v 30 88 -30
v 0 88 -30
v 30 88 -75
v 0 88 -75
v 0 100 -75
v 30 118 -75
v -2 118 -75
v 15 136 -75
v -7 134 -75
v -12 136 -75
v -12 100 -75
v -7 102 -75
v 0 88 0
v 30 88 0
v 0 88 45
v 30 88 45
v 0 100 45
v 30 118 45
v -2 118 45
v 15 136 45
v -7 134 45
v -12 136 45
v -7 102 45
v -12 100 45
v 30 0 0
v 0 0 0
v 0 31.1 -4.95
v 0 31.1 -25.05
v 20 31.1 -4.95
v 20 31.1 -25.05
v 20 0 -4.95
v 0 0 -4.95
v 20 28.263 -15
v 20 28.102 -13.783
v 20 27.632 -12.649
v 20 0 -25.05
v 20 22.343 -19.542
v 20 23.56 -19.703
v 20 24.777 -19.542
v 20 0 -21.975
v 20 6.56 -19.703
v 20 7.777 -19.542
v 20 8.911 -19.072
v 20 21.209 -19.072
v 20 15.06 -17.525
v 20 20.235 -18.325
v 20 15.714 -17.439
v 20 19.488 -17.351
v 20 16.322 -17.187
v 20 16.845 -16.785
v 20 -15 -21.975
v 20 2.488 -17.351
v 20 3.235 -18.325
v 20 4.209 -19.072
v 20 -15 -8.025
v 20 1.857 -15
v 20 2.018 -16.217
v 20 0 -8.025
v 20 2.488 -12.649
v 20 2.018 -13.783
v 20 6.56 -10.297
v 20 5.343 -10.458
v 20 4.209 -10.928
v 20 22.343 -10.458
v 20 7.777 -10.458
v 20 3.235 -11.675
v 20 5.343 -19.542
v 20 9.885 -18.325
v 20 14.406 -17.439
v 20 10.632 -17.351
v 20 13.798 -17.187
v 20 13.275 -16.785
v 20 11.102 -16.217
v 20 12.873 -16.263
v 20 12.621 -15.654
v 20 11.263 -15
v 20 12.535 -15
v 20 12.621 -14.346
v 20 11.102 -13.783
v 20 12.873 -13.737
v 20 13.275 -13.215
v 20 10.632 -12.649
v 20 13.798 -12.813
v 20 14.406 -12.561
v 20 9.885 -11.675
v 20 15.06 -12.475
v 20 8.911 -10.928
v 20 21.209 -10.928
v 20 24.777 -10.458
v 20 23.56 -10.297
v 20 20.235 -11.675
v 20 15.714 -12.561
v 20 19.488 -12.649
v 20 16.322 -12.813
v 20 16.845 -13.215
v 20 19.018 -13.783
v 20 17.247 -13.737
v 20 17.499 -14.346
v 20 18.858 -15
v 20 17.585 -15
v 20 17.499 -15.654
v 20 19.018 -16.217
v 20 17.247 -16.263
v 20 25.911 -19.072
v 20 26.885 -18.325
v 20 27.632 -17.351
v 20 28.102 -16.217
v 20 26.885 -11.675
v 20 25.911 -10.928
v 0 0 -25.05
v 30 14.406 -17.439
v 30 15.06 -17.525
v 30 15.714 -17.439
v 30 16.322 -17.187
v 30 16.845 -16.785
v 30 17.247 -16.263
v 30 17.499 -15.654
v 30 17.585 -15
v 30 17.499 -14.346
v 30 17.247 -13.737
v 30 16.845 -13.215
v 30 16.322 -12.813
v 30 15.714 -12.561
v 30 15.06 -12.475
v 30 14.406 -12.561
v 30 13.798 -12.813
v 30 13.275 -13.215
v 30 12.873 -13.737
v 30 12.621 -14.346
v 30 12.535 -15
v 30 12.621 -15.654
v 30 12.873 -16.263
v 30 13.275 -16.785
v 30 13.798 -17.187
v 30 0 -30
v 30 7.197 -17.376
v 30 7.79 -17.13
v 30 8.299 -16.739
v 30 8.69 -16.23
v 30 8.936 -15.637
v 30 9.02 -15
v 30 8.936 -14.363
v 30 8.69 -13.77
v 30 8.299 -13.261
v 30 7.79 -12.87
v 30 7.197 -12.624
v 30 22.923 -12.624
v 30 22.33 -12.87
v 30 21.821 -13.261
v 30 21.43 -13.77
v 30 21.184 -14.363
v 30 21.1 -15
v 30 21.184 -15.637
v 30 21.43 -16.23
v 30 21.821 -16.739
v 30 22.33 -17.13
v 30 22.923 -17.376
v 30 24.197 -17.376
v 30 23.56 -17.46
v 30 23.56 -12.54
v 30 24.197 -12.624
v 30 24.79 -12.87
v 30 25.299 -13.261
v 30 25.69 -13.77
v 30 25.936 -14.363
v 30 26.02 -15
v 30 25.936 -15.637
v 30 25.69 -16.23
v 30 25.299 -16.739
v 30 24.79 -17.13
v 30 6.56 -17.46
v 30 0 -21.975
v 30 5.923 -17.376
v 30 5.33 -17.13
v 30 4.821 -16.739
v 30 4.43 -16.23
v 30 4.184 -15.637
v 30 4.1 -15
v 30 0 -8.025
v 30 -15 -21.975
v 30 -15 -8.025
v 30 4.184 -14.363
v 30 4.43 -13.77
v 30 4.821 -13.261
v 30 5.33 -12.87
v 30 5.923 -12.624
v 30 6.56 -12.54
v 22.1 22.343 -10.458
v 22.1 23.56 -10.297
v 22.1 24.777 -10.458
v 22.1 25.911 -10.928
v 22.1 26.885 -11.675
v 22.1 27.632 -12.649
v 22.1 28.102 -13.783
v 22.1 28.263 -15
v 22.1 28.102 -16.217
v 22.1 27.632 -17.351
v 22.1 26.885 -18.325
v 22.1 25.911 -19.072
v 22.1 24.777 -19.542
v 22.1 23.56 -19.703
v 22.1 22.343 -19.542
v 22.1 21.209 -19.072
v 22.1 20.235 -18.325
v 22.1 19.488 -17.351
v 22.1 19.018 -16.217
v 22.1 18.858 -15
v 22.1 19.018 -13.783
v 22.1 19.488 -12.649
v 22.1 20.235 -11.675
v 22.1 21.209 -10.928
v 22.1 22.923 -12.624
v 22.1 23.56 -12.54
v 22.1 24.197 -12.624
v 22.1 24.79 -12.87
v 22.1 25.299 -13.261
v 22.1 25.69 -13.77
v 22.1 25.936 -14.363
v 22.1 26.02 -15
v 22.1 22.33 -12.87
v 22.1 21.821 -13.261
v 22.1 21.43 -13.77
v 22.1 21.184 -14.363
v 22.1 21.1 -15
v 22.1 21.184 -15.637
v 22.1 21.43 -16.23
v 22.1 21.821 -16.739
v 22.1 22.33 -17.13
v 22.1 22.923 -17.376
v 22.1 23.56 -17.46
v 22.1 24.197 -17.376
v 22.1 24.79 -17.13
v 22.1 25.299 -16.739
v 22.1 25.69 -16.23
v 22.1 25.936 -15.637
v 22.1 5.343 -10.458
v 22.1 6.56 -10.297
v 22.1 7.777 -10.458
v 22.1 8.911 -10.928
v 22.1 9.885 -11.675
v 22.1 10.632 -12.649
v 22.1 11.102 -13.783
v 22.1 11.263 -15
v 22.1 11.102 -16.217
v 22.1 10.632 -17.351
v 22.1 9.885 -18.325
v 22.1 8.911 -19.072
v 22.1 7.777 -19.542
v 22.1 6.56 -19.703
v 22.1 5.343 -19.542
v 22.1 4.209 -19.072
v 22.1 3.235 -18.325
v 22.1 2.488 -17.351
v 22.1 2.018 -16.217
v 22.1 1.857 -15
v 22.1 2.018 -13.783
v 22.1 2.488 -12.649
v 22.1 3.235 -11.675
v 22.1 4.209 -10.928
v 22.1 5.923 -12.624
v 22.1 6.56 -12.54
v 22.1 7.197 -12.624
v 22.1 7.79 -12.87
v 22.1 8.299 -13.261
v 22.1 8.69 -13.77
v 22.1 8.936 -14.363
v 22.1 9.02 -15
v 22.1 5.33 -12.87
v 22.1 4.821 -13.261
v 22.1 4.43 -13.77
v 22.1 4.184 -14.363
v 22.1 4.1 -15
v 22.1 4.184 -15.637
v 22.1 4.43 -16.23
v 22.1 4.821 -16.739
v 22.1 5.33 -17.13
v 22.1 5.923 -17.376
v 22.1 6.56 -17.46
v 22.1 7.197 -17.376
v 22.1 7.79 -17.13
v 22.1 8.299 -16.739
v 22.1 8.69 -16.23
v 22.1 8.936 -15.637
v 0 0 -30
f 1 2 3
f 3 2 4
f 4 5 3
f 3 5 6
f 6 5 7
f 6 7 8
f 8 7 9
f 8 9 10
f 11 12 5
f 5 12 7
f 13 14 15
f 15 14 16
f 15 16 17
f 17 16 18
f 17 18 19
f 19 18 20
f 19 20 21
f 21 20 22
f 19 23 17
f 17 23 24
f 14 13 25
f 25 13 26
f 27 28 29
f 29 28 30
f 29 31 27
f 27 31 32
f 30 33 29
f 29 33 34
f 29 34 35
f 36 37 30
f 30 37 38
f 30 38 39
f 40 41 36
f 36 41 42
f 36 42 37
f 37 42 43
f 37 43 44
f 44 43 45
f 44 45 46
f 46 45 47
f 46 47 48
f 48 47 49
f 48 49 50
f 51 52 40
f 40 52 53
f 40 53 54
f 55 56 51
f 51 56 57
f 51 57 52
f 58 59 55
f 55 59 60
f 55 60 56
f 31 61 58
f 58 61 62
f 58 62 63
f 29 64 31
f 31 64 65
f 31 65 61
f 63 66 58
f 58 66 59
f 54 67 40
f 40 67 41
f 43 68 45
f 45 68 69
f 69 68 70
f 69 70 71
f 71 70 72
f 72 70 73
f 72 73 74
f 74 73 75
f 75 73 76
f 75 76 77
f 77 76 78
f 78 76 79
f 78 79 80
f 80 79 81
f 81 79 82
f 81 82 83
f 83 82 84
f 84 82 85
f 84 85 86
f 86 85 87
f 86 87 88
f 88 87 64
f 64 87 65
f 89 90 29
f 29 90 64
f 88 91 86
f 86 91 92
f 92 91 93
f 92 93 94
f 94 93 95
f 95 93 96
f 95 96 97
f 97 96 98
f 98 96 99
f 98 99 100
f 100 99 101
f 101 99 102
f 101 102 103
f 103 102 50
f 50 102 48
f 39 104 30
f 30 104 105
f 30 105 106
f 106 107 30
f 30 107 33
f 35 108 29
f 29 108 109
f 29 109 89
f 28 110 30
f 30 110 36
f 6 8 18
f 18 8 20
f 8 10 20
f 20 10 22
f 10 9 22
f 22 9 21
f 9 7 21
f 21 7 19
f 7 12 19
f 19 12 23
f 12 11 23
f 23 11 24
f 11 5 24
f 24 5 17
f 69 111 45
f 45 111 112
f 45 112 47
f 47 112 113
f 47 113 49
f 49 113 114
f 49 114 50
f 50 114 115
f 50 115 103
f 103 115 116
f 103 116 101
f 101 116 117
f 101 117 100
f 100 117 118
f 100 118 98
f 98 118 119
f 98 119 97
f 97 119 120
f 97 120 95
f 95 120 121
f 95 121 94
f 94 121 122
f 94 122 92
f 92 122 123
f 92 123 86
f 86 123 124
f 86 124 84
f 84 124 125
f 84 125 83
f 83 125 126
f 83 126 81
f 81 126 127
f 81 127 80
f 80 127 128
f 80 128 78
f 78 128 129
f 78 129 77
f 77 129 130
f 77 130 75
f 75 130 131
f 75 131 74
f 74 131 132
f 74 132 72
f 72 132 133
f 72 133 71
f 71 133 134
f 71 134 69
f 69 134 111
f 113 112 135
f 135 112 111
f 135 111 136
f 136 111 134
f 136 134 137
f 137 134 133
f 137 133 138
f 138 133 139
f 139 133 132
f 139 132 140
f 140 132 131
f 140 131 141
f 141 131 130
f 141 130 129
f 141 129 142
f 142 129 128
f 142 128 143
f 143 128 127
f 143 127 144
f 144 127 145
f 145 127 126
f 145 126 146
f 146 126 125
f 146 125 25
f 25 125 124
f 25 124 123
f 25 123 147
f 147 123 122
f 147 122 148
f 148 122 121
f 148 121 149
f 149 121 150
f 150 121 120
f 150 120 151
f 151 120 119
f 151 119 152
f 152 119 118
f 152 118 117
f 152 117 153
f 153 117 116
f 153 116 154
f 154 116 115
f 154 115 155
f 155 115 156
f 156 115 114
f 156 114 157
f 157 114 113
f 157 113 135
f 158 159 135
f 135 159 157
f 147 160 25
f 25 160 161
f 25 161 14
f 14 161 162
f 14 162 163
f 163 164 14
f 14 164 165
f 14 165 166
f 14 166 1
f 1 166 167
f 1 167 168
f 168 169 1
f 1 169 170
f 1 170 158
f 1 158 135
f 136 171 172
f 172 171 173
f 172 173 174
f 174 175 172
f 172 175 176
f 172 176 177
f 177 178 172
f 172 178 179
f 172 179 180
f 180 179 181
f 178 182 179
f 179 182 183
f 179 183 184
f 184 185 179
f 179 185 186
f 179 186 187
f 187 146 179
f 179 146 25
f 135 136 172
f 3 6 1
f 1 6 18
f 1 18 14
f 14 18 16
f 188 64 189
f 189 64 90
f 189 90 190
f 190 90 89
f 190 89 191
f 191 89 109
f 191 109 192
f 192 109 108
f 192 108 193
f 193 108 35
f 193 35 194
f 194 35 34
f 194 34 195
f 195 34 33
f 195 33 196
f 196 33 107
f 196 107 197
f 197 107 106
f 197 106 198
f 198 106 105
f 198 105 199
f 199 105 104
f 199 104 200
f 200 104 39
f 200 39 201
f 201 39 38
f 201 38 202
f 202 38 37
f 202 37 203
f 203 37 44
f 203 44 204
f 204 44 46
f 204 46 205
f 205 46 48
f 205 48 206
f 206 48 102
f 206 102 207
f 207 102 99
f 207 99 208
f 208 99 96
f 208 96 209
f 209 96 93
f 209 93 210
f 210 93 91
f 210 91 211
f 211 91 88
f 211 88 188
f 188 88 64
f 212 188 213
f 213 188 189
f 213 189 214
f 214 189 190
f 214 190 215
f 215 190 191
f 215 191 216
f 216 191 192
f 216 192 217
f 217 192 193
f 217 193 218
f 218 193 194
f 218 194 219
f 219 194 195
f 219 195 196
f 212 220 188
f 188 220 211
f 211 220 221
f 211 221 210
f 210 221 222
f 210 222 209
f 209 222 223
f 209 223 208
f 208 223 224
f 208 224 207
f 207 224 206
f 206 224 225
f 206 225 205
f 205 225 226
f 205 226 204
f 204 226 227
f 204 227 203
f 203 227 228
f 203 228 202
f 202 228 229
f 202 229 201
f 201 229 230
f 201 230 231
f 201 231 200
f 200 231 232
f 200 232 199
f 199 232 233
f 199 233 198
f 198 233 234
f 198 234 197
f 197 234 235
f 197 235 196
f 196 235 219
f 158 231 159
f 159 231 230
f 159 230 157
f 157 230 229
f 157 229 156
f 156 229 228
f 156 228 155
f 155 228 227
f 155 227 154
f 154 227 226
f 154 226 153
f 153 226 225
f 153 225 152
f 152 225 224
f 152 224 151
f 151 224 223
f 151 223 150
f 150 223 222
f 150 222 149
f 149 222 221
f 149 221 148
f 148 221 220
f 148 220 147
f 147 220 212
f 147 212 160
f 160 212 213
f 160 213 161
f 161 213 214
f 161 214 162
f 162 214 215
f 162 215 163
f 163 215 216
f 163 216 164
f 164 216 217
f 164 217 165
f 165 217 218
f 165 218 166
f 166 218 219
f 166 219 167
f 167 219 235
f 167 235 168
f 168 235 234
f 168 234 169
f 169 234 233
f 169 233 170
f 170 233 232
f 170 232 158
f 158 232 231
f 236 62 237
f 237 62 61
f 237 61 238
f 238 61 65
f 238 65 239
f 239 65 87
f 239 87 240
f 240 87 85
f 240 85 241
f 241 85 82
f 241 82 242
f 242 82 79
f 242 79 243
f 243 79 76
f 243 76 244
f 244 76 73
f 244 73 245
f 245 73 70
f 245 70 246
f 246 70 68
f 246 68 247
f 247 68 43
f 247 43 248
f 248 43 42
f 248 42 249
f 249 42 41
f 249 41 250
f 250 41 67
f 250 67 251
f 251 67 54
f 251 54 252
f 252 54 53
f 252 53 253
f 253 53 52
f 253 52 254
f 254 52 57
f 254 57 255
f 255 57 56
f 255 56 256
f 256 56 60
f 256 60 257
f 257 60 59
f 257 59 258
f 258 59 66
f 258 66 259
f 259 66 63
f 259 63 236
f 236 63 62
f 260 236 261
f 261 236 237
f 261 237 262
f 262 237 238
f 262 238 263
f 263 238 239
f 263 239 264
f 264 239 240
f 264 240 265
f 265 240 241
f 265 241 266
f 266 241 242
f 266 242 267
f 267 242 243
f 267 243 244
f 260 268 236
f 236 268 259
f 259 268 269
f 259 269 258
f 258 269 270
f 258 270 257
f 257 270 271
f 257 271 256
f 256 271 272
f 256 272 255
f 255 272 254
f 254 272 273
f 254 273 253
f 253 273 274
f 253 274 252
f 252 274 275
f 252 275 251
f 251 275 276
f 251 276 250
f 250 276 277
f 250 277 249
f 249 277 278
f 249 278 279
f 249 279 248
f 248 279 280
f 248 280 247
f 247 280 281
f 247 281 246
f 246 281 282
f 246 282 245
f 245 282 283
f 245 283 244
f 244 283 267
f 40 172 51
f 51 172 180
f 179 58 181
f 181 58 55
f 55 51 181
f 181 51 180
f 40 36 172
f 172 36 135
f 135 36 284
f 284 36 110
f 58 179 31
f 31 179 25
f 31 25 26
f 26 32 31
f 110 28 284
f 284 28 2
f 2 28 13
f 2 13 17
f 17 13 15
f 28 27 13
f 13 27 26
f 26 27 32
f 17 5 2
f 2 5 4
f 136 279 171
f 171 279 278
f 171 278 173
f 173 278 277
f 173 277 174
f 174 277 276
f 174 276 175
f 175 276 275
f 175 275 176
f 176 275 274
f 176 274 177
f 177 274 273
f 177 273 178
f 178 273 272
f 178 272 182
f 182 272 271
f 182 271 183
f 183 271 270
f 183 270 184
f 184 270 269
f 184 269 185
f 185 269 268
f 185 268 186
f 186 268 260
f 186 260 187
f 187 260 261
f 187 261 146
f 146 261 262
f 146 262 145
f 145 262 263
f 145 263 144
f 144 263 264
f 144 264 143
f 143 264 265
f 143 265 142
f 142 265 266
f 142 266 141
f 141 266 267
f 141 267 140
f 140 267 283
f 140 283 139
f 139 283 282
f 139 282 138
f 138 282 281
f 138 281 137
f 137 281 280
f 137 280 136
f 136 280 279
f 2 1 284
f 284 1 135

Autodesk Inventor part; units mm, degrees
ref_plane "YZ Plane" through (0, 0, 0) normal (1, 0, 0) x (0, 1, 0)
ref_plane "XZ Plane" through (0, 0, 0) normal (0, 1, 0) x (-1, 0, 0)
sketch "Sketch1" plane through (0, 0, 0) normal (0, 0, 1) x (1, 0, 0)
  line L0 (0, 0) -> (25, 0)
  line L1 (25, 0) -> (25, 40)
  line L2 (25, 40) -> (0, 40)
  line L3 (0, 40) -> (0, 0)
  dimension "d1" = 25
  dimension "d2" = 40
  dimension "d3" = 25
extrude "Extrusion1" add sketch "Sketch1" against normal blind 30
sketch "Sketch2" plane through (25, 0, 0) normal (1, 0, 0) x (0, 0, -1)
  line L0 (0, 0) -> (30, 0) projected
  circle A0 centre (15, 6.56) radius 2.46
extrude "Extrusion2" cut sketch "Sketch2" against normal blind 30
sketch "Sketch3" plane through (0, 0, 0) normal (-1, 0, 0) x (0, 0, 1)
  line L0 (0, 0) -> (-30, 0) projected
  line L1 (-25.05, 0) -> (-4.95, 0)
  line L2 (-4.95, 0) -> (-4.95, 33.12)
  line L3 (-4.95, 33.12) -> (-25.05, 33.12)
  line L4 (-25.05, 33.12) -> (-25.05, 0)
  dimension "d11" = 20.1
extrude "Extrusion3" cut sketch "Sketch3" against normal blind 20
sketch "Sketch4" plane through (0, 0, 0) normal (0, -1, 0) x (1, 0, 0)
  line L0 (20, -4.95) -> (20, -25.05) projected
  line L1 (20, -15) -> (25, -15)
  line L2 (25, 0) -> (25, -30) projected
  line L3 (20, -8.025) -> (25, -8.025)
  line L4 (25, -8.025) -> (25, -21.975)
  line L5 (25, -21.975) -> (20, -21.975)
  line L6 (20, -21.975) -> (20, -8.025)
  line L7 (20, -8.025) -> (25, -21.975) construction
  line L8 (25, -8.025) -> (20, -21.975) construction
  line L9 (25, -12.54) -> (25, -17.46) projected
  point P0 (0, 0)
  point P1 (22.5, -15)
  dimension "d14" = 13.95
extrude "Extrusion4" add sketch "Sketch4" along normal blind 15
sketch "Sketch5" plane through (20, 0, 0) normal (-1, 0, 0) x (0, 0, 1)
  circle A0 centre (-15, 6.56) radius 2.46 projected
  circle A1 centre (-15, 6.56) radius 4.7025
  circle A2 centre (-15, 6.56) radius 2.46 projected
  circle A3 centre (-15, 6.56) radius 2.46
  point P0 (0, 0)
  dimension "d17" = 9.405
extrude "Extrusion5" cut sketch "Sketch5" against normal blind 2.1
sketch "Sketch6" plane through (25, 0, 0) normal (1, 0, 0) x (0, 0, -1)
  circle A0 centre (15, 6.56) radius 4.7025 projected
  line L0 (15, 6.56) -> (15, 23.56)
  circle A1 centre (15, 23.56) radius 2.46
  point P0 (0, 0)
  dimension "d20" = 17
  dimension "d21" = 4.92
extrude "Extrusion6" cut sketch "Sketch6" against normal blind 10 contours A1
sketch "Sketch7" plane through (20, 0, 0) normal (-1, 0, 0) x (0, 0, 1)
  circle A0 centre (-15, 23.56) radius 2.46 projected
  circle A1 centre (-15, 23.56) radius 4.7025
  point P0 (0, 0)
  dimension "d24" = 9.405
extrude "Extrusion7" cut sketch "Sketch7" against normal blind 2.1
sketch "Sketch9" plane through (25, 0, 0) normal (1, 0, 0) x (0, 0, -1)
  circle A0 centre (15, 6.56) radius 2.46 projected
  circle A1 centre (15, 6.56) radius 2.46
  circle A2 centre (15, 23.56) radius 2.46 projected
  circle A3 centre (15, 23.56) radius 2.46
  line L0 (30, 40) -> (30, 0) projected
  line L1 (30, 0) -> (30, 40)
  line L2 (30, 40) -> (0, 40)
  line L3 (0, 40) -> (0, 0)
  line L4 (0, 0) -> (8.025, 0) projected
  line L5 (21.975, 0) -> (21.975, -15)
  line L6 (21.975, -15) -> (8.025, -15)
  line L7 (8.025, -15) -> (8.025, 0)
  line L8 (0, 0) -> (8.025, 0)
  line L9 (21.975, 0) -> (30, 0)
extrude "Extrusion8" add sketch "Sketch9" along normal blind 5
sketch "Sketch10" plane through (0, 40, 0) normal (0, 1, 0) x (1, 0, 0)
  line L0 (0, 30) -> (30, 30) projected
  line L1 (30, 0) -> (0, 0) projected
  line L2 (0, 30) -> (30, 30)
  line L3 (30, 30) -> (30, 0)
  line L4 (30, 0) -> (0, 0)
  line L5 (0, 0) -> (0, 30)
extrude "Extrusion9" add sketch "Sketch10" along normal blind 30
sketch "Sketch12" plane through (30, 0, 0) normal (1, 0, 0) x (0, 0, -1)
  circle A0 centre (15, 6.56) radius 2.46 projected
  line L0 (15, 6.56) -> (15, 15.06)
  circle A1 centre (15, 15.06) radius 2.525
  point P0 (0, 0)
  dimension "d31" = 8.5
  dimension "d33" = 5.05
extrude "Extrusion10" cut sketch "Sketch12" against normal blind 30 contours A1
sketch "Sketch14" plane through (0, 0, 0) normal (0, 0, 1) x (1, 0, 0)
  line L0 (30, 70) -> (0, 70) projected
  line L1 (0, 70) -> (0, 85)
  line L2 (30, 0) -> (30, 70) projected
  line L3 (30, 118) -> (30, 70)
  line L4 (30, 105) -> (30, 100)
  line L5 (-7, 134) -> (-12, 136)
  line L6 (-7, 102) -> (-12, 100)
  line L7 (-7, 102) -> (-2, 118)
  line L8 (-2, 118) -> (-7, 134)
  line L9 (15, 136) -> (30, 118)
  line L10 (-12, 136) -> (15, 136)
  line L11 (0, 85) -> (0, 100)
  line L12 (0, 100) -> (-12, 100)
  point P0 (0, 0)
  dimension "d82" = 12
extrude "Extrusion12" add sketch "Sketch14" against normal blind 30
sketch "Sketch15" plane through (0, 0, -25.05) normal (-1, 0, 0) x (0, 0, 1)
  line L0 (0, 33.12) -> (20.1, 33.12) projected
  line L1 (20.1, 33.12) -> (20.1, 0) projected
  line L2 (0, 33.12) -> (20.1, 33.12)
  line L3 (20.1, 33.12) -> (20.1, 31.1)
  line L4 (20.1, 31.1) -> (0, 31.1)
  line L5 (0, 31.1) -> (0, 33.12)
  point P0 (25.05, 0)
  dimension "d57" = 2.02
extrude "Extrusion13" add sketch "Sketch15" against normal blind 20
sketch "Sketch23" plane through (0, 0, 0) normal (0, 0, 1) x (1, 0, 0)
  line L0 (0, 100) -> (-12, 100) projected
  line L1 (0, 100) -> (-12, 100)
  line L2 (-12, 100) -> (-7, 102) projected
  line L3 (-12, 100) -> (-7, 102)
  line L4 (-7, 102) -> (-2, 118) projected
  line L5 (-7, 102) -> (-2, 118)
  line L6 (-2, 118) -> (-7, 134) projected
  line L7 (-2, 118) -> (-7, 134)
  line L8 (-12, 136) -> (15, 136) projected
  line L9 (-7, 134) -> (-12, 136)
  line L10 (-12, 136) -> (15, 136)
  line L11 (15, 136) -> (30, 118) projected
  line L12 (15, 136) -> (30, 118)
  line L13 (30, 118) -> (30, 88)
  line L14 (30, 0) -> (30, 118) projected
  line L15 (30, 88) -> (0, 88)
  line L16 (0, 88) -> (0, 100)
  point P0 (0, 0)
  dimension "d83" = 30
  dimension "d84" = 30
extrude "Extrusion14" add sketch "Sketch23" along normal blind 45
ref_plane "Work Plane1" through (0, 0, -15) normal (0, 0, 1) x (1, 0, 0)
mirror "Mirror1" about plane through (0, 0, -15) normal (0, 0, 1) of "Extrusion14"
properties part number "rec_b_32mm_x_120mm"
